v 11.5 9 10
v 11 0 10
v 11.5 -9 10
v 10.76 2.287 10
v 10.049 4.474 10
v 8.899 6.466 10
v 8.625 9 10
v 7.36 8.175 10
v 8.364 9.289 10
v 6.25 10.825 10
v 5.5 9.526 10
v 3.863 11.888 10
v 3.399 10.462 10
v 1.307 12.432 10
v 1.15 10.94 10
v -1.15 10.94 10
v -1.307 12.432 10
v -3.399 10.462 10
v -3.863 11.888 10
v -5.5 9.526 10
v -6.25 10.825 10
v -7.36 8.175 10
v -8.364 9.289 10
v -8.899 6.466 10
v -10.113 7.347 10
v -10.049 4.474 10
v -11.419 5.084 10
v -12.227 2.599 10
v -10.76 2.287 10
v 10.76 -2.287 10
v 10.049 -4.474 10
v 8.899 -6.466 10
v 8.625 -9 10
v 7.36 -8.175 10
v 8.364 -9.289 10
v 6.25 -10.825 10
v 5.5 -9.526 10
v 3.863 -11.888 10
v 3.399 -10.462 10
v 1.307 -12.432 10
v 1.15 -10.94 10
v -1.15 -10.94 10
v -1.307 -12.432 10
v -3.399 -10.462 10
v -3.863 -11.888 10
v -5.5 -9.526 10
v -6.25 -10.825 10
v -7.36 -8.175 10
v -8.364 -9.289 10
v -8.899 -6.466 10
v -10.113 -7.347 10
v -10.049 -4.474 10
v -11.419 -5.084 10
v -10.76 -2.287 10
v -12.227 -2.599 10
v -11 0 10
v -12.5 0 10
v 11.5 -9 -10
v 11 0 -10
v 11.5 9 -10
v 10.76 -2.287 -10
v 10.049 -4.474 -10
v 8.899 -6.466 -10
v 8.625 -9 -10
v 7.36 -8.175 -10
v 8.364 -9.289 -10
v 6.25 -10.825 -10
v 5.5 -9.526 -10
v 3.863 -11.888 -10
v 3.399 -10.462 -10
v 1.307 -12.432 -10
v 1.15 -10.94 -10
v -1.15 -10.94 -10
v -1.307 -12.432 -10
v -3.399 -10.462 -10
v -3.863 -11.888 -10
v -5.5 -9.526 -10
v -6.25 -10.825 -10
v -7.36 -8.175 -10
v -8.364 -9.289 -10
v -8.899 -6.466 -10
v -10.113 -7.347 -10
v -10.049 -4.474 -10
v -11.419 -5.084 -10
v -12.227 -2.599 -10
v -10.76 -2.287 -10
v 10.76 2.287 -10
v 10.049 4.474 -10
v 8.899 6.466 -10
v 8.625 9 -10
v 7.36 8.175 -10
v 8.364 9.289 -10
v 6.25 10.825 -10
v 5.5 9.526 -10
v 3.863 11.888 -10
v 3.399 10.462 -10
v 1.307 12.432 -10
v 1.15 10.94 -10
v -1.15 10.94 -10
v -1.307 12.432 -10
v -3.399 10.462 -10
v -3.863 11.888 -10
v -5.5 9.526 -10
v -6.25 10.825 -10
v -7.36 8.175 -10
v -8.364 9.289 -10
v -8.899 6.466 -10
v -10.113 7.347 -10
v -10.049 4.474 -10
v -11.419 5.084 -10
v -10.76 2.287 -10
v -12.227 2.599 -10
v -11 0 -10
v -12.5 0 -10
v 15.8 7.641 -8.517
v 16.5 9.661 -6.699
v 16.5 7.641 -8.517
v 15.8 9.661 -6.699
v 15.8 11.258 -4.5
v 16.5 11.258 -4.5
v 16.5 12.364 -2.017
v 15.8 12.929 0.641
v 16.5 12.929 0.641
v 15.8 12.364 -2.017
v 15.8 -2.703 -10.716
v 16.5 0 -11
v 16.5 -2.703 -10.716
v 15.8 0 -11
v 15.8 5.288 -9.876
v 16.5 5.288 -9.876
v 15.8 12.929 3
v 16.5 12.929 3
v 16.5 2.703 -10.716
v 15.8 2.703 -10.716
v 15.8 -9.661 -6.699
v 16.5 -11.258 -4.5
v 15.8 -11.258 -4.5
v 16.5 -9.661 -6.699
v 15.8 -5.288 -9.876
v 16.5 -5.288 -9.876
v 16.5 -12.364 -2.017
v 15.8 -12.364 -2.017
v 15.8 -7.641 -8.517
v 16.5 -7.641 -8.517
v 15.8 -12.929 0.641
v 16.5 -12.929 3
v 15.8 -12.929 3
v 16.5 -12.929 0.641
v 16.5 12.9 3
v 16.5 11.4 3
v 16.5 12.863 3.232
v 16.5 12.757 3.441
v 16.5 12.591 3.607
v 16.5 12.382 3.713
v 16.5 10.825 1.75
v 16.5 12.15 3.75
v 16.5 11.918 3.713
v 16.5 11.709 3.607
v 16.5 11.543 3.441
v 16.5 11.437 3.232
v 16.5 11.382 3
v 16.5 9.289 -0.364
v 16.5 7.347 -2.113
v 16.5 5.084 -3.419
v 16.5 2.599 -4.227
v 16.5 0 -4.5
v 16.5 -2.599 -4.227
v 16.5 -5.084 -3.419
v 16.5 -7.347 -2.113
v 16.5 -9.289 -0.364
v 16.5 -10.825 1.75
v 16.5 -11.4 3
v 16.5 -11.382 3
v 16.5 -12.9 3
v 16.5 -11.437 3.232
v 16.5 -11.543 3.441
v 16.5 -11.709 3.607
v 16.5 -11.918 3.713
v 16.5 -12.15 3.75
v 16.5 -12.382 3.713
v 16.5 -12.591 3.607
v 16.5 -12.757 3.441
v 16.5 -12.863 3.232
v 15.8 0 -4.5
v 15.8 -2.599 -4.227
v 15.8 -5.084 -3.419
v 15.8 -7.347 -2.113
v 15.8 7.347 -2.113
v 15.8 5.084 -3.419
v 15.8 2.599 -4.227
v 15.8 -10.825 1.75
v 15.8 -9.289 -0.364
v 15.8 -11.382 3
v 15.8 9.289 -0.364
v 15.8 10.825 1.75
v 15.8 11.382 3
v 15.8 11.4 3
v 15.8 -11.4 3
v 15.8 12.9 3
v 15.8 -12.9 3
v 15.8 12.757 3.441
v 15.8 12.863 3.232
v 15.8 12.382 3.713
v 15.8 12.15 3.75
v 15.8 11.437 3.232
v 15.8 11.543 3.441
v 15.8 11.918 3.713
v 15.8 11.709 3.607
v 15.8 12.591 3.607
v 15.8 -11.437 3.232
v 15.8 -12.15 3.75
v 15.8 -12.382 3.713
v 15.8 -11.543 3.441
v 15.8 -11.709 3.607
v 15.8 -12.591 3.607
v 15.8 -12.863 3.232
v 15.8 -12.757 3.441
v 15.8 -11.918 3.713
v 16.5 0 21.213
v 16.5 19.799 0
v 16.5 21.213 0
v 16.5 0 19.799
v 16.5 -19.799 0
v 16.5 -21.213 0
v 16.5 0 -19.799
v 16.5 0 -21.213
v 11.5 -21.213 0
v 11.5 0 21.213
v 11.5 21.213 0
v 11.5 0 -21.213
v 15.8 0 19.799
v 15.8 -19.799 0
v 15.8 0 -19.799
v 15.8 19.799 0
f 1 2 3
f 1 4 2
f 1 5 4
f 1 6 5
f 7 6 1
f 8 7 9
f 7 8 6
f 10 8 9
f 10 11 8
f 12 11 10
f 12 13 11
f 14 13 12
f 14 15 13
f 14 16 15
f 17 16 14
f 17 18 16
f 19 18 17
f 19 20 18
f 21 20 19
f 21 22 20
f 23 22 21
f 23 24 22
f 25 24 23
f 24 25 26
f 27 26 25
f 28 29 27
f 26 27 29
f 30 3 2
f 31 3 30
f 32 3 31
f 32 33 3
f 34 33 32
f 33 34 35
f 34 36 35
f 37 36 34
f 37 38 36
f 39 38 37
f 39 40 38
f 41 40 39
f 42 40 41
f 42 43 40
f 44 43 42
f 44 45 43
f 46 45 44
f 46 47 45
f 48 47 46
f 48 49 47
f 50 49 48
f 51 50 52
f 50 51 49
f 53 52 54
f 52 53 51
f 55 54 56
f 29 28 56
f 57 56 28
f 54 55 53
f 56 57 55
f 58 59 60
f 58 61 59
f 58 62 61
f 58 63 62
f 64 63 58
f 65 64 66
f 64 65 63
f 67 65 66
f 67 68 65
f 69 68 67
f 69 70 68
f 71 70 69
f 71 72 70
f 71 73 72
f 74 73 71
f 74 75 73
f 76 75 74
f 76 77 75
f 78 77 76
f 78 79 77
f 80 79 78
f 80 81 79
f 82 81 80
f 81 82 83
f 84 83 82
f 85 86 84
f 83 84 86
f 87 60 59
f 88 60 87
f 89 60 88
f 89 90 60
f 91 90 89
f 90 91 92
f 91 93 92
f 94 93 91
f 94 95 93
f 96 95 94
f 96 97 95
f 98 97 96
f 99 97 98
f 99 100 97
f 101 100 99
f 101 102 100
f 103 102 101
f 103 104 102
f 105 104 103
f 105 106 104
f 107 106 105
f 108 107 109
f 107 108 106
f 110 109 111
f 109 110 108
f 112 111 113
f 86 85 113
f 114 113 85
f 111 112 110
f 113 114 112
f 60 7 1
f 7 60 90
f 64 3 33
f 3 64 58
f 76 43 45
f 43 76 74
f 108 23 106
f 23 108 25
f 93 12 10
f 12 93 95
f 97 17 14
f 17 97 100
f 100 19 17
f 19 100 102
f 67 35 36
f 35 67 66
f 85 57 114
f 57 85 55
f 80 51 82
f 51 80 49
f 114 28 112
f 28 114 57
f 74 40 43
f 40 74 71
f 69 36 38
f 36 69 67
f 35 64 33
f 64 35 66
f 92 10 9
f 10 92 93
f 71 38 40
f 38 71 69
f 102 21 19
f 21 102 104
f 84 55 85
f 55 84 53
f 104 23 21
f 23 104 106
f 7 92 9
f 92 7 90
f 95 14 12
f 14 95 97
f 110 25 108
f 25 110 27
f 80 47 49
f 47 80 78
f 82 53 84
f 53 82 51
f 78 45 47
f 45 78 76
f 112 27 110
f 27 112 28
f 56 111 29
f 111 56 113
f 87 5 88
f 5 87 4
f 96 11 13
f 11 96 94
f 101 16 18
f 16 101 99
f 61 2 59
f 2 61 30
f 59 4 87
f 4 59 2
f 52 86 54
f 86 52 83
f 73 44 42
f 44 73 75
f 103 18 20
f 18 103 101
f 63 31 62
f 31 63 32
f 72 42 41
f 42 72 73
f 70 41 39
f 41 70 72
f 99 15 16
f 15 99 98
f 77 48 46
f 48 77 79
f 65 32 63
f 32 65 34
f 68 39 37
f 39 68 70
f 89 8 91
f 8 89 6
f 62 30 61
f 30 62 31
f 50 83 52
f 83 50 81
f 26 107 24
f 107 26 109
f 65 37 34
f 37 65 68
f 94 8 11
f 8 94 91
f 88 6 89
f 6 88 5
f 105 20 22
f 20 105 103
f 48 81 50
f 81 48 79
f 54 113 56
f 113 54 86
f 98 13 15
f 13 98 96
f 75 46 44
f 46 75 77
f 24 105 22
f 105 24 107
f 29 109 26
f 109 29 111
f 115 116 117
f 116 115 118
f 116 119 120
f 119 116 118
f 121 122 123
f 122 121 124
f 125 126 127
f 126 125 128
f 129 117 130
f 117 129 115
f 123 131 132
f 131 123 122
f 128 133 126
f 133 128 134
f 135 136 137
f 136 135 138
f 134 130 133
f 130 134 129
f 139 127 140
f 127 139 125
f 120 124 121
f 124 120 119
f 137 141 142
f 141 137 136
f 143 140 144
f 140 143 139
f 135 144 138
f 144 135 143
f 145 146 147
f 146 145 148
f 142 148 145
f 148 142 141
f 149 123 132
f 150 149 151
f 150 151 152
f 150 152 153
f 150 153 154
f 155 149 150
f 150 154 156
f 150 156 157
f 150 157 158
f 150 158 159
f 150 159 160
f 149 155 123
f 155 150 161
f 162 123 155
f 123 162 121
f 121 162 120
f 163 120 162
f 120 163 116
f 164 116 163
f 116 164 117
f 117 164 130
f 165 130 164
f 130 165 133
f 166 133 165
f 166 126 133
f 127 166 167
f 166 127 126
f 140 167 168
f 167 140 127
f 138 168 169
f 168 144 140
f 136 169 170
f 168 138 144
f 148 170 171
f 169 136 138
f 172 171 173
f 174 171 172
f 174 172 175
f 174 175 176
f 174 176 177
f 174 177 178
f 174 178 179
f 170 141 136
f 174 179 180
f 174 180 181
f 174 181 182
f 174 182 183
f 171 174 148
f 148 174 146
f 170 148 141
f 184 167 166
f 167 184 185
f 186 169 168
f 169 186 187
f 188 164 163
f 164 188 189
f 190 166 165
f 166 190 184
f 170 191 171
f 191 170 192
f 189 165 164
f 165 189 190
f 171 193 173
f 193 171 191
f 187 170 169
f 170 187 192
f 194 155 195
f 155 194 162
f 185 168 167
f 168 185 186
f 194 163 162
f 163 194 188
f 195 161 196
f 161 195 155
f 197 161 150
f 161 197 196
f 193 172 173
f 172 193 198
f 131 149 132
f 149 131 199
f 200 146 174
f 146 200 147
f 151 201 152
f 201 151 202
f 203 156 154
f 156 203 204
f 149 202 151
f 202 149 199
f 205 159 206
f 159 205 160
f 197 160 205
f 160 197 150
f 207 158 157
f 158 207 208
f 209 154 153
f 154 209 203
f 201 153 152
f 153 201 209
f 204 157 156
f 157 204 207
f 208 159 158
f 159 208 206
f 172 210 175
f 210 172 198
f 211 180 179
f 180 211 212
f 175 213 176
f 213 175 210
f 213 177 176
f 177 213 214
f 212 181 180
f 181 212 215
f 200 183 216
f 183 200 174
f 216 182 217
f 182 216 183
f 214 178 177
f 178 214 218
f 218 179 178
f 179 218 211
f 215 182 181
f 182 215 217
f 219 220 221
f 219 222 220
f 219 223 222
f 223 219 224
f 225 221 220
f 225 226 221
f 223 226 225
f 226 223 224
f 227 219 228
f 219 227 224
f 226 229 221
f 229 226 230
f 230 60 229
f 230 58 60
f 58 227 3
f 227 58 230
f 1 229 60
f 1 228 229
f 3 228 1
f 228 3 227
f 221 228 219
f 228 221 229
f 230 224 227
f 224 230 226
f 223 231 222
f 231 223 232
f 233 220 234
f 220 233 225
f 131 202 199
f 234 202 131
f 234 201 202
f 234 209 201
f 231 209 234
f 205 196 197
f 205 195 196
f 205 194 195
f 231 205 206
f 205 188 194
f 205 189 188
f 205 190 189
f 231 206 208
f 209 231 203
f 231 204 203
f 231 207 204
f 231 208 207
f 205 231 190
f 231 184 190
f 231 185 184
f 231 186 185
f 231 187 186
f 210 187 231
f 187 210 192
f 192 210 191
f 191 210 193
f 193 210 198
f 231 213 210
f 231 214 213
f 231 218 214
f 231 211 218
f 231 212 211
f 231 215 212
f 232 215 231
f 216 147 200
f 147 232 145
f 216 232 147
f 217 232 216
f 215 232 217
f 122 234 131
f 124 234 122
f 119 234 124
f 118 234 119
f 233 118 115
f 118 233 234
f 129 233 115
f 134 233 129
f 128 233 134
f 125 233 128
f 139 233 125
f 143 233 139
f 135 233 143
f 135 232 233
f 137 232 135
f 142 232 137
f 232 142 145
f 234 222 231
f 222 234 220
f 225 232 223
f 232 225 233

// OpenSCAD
difference() {
    union() {
        translate([10.5, 0, 0]) {
            cube([4,18,20], center = true);
        }
        cylinder(h=20, r=12.5, center=true);
    }
    cylinder(h=25, r=11, center=true);
};

translate([14, 0, 0]) {
    rotate([0,90,0]) {
        translate([-8, 0, .5]) {
            difference() {
                {
                    translate([6,0,0]) {
                        cylinder(h=4, r=13, center=true);
                    }
                }
                {
                    cylinder(h=6, r=12.5, center=true);
                    cube([10, 50, 20], center=true);
                }
            }
            translate([5,12.15,0]) cylinder(h=4, r=.75, center=true, $fn=20);
            translate([5,-12.15,0]) cylinder(h=4, r=.75, center=true, $fn=20);
            
        }
    }
    rotate([45, 0, 0]) {
        difference() {
            cube([5,30,30], center = true);
            translate([4.8, 0, 0]) {
                cube([6,28,28], center = true);
            }
        }
    }
}
